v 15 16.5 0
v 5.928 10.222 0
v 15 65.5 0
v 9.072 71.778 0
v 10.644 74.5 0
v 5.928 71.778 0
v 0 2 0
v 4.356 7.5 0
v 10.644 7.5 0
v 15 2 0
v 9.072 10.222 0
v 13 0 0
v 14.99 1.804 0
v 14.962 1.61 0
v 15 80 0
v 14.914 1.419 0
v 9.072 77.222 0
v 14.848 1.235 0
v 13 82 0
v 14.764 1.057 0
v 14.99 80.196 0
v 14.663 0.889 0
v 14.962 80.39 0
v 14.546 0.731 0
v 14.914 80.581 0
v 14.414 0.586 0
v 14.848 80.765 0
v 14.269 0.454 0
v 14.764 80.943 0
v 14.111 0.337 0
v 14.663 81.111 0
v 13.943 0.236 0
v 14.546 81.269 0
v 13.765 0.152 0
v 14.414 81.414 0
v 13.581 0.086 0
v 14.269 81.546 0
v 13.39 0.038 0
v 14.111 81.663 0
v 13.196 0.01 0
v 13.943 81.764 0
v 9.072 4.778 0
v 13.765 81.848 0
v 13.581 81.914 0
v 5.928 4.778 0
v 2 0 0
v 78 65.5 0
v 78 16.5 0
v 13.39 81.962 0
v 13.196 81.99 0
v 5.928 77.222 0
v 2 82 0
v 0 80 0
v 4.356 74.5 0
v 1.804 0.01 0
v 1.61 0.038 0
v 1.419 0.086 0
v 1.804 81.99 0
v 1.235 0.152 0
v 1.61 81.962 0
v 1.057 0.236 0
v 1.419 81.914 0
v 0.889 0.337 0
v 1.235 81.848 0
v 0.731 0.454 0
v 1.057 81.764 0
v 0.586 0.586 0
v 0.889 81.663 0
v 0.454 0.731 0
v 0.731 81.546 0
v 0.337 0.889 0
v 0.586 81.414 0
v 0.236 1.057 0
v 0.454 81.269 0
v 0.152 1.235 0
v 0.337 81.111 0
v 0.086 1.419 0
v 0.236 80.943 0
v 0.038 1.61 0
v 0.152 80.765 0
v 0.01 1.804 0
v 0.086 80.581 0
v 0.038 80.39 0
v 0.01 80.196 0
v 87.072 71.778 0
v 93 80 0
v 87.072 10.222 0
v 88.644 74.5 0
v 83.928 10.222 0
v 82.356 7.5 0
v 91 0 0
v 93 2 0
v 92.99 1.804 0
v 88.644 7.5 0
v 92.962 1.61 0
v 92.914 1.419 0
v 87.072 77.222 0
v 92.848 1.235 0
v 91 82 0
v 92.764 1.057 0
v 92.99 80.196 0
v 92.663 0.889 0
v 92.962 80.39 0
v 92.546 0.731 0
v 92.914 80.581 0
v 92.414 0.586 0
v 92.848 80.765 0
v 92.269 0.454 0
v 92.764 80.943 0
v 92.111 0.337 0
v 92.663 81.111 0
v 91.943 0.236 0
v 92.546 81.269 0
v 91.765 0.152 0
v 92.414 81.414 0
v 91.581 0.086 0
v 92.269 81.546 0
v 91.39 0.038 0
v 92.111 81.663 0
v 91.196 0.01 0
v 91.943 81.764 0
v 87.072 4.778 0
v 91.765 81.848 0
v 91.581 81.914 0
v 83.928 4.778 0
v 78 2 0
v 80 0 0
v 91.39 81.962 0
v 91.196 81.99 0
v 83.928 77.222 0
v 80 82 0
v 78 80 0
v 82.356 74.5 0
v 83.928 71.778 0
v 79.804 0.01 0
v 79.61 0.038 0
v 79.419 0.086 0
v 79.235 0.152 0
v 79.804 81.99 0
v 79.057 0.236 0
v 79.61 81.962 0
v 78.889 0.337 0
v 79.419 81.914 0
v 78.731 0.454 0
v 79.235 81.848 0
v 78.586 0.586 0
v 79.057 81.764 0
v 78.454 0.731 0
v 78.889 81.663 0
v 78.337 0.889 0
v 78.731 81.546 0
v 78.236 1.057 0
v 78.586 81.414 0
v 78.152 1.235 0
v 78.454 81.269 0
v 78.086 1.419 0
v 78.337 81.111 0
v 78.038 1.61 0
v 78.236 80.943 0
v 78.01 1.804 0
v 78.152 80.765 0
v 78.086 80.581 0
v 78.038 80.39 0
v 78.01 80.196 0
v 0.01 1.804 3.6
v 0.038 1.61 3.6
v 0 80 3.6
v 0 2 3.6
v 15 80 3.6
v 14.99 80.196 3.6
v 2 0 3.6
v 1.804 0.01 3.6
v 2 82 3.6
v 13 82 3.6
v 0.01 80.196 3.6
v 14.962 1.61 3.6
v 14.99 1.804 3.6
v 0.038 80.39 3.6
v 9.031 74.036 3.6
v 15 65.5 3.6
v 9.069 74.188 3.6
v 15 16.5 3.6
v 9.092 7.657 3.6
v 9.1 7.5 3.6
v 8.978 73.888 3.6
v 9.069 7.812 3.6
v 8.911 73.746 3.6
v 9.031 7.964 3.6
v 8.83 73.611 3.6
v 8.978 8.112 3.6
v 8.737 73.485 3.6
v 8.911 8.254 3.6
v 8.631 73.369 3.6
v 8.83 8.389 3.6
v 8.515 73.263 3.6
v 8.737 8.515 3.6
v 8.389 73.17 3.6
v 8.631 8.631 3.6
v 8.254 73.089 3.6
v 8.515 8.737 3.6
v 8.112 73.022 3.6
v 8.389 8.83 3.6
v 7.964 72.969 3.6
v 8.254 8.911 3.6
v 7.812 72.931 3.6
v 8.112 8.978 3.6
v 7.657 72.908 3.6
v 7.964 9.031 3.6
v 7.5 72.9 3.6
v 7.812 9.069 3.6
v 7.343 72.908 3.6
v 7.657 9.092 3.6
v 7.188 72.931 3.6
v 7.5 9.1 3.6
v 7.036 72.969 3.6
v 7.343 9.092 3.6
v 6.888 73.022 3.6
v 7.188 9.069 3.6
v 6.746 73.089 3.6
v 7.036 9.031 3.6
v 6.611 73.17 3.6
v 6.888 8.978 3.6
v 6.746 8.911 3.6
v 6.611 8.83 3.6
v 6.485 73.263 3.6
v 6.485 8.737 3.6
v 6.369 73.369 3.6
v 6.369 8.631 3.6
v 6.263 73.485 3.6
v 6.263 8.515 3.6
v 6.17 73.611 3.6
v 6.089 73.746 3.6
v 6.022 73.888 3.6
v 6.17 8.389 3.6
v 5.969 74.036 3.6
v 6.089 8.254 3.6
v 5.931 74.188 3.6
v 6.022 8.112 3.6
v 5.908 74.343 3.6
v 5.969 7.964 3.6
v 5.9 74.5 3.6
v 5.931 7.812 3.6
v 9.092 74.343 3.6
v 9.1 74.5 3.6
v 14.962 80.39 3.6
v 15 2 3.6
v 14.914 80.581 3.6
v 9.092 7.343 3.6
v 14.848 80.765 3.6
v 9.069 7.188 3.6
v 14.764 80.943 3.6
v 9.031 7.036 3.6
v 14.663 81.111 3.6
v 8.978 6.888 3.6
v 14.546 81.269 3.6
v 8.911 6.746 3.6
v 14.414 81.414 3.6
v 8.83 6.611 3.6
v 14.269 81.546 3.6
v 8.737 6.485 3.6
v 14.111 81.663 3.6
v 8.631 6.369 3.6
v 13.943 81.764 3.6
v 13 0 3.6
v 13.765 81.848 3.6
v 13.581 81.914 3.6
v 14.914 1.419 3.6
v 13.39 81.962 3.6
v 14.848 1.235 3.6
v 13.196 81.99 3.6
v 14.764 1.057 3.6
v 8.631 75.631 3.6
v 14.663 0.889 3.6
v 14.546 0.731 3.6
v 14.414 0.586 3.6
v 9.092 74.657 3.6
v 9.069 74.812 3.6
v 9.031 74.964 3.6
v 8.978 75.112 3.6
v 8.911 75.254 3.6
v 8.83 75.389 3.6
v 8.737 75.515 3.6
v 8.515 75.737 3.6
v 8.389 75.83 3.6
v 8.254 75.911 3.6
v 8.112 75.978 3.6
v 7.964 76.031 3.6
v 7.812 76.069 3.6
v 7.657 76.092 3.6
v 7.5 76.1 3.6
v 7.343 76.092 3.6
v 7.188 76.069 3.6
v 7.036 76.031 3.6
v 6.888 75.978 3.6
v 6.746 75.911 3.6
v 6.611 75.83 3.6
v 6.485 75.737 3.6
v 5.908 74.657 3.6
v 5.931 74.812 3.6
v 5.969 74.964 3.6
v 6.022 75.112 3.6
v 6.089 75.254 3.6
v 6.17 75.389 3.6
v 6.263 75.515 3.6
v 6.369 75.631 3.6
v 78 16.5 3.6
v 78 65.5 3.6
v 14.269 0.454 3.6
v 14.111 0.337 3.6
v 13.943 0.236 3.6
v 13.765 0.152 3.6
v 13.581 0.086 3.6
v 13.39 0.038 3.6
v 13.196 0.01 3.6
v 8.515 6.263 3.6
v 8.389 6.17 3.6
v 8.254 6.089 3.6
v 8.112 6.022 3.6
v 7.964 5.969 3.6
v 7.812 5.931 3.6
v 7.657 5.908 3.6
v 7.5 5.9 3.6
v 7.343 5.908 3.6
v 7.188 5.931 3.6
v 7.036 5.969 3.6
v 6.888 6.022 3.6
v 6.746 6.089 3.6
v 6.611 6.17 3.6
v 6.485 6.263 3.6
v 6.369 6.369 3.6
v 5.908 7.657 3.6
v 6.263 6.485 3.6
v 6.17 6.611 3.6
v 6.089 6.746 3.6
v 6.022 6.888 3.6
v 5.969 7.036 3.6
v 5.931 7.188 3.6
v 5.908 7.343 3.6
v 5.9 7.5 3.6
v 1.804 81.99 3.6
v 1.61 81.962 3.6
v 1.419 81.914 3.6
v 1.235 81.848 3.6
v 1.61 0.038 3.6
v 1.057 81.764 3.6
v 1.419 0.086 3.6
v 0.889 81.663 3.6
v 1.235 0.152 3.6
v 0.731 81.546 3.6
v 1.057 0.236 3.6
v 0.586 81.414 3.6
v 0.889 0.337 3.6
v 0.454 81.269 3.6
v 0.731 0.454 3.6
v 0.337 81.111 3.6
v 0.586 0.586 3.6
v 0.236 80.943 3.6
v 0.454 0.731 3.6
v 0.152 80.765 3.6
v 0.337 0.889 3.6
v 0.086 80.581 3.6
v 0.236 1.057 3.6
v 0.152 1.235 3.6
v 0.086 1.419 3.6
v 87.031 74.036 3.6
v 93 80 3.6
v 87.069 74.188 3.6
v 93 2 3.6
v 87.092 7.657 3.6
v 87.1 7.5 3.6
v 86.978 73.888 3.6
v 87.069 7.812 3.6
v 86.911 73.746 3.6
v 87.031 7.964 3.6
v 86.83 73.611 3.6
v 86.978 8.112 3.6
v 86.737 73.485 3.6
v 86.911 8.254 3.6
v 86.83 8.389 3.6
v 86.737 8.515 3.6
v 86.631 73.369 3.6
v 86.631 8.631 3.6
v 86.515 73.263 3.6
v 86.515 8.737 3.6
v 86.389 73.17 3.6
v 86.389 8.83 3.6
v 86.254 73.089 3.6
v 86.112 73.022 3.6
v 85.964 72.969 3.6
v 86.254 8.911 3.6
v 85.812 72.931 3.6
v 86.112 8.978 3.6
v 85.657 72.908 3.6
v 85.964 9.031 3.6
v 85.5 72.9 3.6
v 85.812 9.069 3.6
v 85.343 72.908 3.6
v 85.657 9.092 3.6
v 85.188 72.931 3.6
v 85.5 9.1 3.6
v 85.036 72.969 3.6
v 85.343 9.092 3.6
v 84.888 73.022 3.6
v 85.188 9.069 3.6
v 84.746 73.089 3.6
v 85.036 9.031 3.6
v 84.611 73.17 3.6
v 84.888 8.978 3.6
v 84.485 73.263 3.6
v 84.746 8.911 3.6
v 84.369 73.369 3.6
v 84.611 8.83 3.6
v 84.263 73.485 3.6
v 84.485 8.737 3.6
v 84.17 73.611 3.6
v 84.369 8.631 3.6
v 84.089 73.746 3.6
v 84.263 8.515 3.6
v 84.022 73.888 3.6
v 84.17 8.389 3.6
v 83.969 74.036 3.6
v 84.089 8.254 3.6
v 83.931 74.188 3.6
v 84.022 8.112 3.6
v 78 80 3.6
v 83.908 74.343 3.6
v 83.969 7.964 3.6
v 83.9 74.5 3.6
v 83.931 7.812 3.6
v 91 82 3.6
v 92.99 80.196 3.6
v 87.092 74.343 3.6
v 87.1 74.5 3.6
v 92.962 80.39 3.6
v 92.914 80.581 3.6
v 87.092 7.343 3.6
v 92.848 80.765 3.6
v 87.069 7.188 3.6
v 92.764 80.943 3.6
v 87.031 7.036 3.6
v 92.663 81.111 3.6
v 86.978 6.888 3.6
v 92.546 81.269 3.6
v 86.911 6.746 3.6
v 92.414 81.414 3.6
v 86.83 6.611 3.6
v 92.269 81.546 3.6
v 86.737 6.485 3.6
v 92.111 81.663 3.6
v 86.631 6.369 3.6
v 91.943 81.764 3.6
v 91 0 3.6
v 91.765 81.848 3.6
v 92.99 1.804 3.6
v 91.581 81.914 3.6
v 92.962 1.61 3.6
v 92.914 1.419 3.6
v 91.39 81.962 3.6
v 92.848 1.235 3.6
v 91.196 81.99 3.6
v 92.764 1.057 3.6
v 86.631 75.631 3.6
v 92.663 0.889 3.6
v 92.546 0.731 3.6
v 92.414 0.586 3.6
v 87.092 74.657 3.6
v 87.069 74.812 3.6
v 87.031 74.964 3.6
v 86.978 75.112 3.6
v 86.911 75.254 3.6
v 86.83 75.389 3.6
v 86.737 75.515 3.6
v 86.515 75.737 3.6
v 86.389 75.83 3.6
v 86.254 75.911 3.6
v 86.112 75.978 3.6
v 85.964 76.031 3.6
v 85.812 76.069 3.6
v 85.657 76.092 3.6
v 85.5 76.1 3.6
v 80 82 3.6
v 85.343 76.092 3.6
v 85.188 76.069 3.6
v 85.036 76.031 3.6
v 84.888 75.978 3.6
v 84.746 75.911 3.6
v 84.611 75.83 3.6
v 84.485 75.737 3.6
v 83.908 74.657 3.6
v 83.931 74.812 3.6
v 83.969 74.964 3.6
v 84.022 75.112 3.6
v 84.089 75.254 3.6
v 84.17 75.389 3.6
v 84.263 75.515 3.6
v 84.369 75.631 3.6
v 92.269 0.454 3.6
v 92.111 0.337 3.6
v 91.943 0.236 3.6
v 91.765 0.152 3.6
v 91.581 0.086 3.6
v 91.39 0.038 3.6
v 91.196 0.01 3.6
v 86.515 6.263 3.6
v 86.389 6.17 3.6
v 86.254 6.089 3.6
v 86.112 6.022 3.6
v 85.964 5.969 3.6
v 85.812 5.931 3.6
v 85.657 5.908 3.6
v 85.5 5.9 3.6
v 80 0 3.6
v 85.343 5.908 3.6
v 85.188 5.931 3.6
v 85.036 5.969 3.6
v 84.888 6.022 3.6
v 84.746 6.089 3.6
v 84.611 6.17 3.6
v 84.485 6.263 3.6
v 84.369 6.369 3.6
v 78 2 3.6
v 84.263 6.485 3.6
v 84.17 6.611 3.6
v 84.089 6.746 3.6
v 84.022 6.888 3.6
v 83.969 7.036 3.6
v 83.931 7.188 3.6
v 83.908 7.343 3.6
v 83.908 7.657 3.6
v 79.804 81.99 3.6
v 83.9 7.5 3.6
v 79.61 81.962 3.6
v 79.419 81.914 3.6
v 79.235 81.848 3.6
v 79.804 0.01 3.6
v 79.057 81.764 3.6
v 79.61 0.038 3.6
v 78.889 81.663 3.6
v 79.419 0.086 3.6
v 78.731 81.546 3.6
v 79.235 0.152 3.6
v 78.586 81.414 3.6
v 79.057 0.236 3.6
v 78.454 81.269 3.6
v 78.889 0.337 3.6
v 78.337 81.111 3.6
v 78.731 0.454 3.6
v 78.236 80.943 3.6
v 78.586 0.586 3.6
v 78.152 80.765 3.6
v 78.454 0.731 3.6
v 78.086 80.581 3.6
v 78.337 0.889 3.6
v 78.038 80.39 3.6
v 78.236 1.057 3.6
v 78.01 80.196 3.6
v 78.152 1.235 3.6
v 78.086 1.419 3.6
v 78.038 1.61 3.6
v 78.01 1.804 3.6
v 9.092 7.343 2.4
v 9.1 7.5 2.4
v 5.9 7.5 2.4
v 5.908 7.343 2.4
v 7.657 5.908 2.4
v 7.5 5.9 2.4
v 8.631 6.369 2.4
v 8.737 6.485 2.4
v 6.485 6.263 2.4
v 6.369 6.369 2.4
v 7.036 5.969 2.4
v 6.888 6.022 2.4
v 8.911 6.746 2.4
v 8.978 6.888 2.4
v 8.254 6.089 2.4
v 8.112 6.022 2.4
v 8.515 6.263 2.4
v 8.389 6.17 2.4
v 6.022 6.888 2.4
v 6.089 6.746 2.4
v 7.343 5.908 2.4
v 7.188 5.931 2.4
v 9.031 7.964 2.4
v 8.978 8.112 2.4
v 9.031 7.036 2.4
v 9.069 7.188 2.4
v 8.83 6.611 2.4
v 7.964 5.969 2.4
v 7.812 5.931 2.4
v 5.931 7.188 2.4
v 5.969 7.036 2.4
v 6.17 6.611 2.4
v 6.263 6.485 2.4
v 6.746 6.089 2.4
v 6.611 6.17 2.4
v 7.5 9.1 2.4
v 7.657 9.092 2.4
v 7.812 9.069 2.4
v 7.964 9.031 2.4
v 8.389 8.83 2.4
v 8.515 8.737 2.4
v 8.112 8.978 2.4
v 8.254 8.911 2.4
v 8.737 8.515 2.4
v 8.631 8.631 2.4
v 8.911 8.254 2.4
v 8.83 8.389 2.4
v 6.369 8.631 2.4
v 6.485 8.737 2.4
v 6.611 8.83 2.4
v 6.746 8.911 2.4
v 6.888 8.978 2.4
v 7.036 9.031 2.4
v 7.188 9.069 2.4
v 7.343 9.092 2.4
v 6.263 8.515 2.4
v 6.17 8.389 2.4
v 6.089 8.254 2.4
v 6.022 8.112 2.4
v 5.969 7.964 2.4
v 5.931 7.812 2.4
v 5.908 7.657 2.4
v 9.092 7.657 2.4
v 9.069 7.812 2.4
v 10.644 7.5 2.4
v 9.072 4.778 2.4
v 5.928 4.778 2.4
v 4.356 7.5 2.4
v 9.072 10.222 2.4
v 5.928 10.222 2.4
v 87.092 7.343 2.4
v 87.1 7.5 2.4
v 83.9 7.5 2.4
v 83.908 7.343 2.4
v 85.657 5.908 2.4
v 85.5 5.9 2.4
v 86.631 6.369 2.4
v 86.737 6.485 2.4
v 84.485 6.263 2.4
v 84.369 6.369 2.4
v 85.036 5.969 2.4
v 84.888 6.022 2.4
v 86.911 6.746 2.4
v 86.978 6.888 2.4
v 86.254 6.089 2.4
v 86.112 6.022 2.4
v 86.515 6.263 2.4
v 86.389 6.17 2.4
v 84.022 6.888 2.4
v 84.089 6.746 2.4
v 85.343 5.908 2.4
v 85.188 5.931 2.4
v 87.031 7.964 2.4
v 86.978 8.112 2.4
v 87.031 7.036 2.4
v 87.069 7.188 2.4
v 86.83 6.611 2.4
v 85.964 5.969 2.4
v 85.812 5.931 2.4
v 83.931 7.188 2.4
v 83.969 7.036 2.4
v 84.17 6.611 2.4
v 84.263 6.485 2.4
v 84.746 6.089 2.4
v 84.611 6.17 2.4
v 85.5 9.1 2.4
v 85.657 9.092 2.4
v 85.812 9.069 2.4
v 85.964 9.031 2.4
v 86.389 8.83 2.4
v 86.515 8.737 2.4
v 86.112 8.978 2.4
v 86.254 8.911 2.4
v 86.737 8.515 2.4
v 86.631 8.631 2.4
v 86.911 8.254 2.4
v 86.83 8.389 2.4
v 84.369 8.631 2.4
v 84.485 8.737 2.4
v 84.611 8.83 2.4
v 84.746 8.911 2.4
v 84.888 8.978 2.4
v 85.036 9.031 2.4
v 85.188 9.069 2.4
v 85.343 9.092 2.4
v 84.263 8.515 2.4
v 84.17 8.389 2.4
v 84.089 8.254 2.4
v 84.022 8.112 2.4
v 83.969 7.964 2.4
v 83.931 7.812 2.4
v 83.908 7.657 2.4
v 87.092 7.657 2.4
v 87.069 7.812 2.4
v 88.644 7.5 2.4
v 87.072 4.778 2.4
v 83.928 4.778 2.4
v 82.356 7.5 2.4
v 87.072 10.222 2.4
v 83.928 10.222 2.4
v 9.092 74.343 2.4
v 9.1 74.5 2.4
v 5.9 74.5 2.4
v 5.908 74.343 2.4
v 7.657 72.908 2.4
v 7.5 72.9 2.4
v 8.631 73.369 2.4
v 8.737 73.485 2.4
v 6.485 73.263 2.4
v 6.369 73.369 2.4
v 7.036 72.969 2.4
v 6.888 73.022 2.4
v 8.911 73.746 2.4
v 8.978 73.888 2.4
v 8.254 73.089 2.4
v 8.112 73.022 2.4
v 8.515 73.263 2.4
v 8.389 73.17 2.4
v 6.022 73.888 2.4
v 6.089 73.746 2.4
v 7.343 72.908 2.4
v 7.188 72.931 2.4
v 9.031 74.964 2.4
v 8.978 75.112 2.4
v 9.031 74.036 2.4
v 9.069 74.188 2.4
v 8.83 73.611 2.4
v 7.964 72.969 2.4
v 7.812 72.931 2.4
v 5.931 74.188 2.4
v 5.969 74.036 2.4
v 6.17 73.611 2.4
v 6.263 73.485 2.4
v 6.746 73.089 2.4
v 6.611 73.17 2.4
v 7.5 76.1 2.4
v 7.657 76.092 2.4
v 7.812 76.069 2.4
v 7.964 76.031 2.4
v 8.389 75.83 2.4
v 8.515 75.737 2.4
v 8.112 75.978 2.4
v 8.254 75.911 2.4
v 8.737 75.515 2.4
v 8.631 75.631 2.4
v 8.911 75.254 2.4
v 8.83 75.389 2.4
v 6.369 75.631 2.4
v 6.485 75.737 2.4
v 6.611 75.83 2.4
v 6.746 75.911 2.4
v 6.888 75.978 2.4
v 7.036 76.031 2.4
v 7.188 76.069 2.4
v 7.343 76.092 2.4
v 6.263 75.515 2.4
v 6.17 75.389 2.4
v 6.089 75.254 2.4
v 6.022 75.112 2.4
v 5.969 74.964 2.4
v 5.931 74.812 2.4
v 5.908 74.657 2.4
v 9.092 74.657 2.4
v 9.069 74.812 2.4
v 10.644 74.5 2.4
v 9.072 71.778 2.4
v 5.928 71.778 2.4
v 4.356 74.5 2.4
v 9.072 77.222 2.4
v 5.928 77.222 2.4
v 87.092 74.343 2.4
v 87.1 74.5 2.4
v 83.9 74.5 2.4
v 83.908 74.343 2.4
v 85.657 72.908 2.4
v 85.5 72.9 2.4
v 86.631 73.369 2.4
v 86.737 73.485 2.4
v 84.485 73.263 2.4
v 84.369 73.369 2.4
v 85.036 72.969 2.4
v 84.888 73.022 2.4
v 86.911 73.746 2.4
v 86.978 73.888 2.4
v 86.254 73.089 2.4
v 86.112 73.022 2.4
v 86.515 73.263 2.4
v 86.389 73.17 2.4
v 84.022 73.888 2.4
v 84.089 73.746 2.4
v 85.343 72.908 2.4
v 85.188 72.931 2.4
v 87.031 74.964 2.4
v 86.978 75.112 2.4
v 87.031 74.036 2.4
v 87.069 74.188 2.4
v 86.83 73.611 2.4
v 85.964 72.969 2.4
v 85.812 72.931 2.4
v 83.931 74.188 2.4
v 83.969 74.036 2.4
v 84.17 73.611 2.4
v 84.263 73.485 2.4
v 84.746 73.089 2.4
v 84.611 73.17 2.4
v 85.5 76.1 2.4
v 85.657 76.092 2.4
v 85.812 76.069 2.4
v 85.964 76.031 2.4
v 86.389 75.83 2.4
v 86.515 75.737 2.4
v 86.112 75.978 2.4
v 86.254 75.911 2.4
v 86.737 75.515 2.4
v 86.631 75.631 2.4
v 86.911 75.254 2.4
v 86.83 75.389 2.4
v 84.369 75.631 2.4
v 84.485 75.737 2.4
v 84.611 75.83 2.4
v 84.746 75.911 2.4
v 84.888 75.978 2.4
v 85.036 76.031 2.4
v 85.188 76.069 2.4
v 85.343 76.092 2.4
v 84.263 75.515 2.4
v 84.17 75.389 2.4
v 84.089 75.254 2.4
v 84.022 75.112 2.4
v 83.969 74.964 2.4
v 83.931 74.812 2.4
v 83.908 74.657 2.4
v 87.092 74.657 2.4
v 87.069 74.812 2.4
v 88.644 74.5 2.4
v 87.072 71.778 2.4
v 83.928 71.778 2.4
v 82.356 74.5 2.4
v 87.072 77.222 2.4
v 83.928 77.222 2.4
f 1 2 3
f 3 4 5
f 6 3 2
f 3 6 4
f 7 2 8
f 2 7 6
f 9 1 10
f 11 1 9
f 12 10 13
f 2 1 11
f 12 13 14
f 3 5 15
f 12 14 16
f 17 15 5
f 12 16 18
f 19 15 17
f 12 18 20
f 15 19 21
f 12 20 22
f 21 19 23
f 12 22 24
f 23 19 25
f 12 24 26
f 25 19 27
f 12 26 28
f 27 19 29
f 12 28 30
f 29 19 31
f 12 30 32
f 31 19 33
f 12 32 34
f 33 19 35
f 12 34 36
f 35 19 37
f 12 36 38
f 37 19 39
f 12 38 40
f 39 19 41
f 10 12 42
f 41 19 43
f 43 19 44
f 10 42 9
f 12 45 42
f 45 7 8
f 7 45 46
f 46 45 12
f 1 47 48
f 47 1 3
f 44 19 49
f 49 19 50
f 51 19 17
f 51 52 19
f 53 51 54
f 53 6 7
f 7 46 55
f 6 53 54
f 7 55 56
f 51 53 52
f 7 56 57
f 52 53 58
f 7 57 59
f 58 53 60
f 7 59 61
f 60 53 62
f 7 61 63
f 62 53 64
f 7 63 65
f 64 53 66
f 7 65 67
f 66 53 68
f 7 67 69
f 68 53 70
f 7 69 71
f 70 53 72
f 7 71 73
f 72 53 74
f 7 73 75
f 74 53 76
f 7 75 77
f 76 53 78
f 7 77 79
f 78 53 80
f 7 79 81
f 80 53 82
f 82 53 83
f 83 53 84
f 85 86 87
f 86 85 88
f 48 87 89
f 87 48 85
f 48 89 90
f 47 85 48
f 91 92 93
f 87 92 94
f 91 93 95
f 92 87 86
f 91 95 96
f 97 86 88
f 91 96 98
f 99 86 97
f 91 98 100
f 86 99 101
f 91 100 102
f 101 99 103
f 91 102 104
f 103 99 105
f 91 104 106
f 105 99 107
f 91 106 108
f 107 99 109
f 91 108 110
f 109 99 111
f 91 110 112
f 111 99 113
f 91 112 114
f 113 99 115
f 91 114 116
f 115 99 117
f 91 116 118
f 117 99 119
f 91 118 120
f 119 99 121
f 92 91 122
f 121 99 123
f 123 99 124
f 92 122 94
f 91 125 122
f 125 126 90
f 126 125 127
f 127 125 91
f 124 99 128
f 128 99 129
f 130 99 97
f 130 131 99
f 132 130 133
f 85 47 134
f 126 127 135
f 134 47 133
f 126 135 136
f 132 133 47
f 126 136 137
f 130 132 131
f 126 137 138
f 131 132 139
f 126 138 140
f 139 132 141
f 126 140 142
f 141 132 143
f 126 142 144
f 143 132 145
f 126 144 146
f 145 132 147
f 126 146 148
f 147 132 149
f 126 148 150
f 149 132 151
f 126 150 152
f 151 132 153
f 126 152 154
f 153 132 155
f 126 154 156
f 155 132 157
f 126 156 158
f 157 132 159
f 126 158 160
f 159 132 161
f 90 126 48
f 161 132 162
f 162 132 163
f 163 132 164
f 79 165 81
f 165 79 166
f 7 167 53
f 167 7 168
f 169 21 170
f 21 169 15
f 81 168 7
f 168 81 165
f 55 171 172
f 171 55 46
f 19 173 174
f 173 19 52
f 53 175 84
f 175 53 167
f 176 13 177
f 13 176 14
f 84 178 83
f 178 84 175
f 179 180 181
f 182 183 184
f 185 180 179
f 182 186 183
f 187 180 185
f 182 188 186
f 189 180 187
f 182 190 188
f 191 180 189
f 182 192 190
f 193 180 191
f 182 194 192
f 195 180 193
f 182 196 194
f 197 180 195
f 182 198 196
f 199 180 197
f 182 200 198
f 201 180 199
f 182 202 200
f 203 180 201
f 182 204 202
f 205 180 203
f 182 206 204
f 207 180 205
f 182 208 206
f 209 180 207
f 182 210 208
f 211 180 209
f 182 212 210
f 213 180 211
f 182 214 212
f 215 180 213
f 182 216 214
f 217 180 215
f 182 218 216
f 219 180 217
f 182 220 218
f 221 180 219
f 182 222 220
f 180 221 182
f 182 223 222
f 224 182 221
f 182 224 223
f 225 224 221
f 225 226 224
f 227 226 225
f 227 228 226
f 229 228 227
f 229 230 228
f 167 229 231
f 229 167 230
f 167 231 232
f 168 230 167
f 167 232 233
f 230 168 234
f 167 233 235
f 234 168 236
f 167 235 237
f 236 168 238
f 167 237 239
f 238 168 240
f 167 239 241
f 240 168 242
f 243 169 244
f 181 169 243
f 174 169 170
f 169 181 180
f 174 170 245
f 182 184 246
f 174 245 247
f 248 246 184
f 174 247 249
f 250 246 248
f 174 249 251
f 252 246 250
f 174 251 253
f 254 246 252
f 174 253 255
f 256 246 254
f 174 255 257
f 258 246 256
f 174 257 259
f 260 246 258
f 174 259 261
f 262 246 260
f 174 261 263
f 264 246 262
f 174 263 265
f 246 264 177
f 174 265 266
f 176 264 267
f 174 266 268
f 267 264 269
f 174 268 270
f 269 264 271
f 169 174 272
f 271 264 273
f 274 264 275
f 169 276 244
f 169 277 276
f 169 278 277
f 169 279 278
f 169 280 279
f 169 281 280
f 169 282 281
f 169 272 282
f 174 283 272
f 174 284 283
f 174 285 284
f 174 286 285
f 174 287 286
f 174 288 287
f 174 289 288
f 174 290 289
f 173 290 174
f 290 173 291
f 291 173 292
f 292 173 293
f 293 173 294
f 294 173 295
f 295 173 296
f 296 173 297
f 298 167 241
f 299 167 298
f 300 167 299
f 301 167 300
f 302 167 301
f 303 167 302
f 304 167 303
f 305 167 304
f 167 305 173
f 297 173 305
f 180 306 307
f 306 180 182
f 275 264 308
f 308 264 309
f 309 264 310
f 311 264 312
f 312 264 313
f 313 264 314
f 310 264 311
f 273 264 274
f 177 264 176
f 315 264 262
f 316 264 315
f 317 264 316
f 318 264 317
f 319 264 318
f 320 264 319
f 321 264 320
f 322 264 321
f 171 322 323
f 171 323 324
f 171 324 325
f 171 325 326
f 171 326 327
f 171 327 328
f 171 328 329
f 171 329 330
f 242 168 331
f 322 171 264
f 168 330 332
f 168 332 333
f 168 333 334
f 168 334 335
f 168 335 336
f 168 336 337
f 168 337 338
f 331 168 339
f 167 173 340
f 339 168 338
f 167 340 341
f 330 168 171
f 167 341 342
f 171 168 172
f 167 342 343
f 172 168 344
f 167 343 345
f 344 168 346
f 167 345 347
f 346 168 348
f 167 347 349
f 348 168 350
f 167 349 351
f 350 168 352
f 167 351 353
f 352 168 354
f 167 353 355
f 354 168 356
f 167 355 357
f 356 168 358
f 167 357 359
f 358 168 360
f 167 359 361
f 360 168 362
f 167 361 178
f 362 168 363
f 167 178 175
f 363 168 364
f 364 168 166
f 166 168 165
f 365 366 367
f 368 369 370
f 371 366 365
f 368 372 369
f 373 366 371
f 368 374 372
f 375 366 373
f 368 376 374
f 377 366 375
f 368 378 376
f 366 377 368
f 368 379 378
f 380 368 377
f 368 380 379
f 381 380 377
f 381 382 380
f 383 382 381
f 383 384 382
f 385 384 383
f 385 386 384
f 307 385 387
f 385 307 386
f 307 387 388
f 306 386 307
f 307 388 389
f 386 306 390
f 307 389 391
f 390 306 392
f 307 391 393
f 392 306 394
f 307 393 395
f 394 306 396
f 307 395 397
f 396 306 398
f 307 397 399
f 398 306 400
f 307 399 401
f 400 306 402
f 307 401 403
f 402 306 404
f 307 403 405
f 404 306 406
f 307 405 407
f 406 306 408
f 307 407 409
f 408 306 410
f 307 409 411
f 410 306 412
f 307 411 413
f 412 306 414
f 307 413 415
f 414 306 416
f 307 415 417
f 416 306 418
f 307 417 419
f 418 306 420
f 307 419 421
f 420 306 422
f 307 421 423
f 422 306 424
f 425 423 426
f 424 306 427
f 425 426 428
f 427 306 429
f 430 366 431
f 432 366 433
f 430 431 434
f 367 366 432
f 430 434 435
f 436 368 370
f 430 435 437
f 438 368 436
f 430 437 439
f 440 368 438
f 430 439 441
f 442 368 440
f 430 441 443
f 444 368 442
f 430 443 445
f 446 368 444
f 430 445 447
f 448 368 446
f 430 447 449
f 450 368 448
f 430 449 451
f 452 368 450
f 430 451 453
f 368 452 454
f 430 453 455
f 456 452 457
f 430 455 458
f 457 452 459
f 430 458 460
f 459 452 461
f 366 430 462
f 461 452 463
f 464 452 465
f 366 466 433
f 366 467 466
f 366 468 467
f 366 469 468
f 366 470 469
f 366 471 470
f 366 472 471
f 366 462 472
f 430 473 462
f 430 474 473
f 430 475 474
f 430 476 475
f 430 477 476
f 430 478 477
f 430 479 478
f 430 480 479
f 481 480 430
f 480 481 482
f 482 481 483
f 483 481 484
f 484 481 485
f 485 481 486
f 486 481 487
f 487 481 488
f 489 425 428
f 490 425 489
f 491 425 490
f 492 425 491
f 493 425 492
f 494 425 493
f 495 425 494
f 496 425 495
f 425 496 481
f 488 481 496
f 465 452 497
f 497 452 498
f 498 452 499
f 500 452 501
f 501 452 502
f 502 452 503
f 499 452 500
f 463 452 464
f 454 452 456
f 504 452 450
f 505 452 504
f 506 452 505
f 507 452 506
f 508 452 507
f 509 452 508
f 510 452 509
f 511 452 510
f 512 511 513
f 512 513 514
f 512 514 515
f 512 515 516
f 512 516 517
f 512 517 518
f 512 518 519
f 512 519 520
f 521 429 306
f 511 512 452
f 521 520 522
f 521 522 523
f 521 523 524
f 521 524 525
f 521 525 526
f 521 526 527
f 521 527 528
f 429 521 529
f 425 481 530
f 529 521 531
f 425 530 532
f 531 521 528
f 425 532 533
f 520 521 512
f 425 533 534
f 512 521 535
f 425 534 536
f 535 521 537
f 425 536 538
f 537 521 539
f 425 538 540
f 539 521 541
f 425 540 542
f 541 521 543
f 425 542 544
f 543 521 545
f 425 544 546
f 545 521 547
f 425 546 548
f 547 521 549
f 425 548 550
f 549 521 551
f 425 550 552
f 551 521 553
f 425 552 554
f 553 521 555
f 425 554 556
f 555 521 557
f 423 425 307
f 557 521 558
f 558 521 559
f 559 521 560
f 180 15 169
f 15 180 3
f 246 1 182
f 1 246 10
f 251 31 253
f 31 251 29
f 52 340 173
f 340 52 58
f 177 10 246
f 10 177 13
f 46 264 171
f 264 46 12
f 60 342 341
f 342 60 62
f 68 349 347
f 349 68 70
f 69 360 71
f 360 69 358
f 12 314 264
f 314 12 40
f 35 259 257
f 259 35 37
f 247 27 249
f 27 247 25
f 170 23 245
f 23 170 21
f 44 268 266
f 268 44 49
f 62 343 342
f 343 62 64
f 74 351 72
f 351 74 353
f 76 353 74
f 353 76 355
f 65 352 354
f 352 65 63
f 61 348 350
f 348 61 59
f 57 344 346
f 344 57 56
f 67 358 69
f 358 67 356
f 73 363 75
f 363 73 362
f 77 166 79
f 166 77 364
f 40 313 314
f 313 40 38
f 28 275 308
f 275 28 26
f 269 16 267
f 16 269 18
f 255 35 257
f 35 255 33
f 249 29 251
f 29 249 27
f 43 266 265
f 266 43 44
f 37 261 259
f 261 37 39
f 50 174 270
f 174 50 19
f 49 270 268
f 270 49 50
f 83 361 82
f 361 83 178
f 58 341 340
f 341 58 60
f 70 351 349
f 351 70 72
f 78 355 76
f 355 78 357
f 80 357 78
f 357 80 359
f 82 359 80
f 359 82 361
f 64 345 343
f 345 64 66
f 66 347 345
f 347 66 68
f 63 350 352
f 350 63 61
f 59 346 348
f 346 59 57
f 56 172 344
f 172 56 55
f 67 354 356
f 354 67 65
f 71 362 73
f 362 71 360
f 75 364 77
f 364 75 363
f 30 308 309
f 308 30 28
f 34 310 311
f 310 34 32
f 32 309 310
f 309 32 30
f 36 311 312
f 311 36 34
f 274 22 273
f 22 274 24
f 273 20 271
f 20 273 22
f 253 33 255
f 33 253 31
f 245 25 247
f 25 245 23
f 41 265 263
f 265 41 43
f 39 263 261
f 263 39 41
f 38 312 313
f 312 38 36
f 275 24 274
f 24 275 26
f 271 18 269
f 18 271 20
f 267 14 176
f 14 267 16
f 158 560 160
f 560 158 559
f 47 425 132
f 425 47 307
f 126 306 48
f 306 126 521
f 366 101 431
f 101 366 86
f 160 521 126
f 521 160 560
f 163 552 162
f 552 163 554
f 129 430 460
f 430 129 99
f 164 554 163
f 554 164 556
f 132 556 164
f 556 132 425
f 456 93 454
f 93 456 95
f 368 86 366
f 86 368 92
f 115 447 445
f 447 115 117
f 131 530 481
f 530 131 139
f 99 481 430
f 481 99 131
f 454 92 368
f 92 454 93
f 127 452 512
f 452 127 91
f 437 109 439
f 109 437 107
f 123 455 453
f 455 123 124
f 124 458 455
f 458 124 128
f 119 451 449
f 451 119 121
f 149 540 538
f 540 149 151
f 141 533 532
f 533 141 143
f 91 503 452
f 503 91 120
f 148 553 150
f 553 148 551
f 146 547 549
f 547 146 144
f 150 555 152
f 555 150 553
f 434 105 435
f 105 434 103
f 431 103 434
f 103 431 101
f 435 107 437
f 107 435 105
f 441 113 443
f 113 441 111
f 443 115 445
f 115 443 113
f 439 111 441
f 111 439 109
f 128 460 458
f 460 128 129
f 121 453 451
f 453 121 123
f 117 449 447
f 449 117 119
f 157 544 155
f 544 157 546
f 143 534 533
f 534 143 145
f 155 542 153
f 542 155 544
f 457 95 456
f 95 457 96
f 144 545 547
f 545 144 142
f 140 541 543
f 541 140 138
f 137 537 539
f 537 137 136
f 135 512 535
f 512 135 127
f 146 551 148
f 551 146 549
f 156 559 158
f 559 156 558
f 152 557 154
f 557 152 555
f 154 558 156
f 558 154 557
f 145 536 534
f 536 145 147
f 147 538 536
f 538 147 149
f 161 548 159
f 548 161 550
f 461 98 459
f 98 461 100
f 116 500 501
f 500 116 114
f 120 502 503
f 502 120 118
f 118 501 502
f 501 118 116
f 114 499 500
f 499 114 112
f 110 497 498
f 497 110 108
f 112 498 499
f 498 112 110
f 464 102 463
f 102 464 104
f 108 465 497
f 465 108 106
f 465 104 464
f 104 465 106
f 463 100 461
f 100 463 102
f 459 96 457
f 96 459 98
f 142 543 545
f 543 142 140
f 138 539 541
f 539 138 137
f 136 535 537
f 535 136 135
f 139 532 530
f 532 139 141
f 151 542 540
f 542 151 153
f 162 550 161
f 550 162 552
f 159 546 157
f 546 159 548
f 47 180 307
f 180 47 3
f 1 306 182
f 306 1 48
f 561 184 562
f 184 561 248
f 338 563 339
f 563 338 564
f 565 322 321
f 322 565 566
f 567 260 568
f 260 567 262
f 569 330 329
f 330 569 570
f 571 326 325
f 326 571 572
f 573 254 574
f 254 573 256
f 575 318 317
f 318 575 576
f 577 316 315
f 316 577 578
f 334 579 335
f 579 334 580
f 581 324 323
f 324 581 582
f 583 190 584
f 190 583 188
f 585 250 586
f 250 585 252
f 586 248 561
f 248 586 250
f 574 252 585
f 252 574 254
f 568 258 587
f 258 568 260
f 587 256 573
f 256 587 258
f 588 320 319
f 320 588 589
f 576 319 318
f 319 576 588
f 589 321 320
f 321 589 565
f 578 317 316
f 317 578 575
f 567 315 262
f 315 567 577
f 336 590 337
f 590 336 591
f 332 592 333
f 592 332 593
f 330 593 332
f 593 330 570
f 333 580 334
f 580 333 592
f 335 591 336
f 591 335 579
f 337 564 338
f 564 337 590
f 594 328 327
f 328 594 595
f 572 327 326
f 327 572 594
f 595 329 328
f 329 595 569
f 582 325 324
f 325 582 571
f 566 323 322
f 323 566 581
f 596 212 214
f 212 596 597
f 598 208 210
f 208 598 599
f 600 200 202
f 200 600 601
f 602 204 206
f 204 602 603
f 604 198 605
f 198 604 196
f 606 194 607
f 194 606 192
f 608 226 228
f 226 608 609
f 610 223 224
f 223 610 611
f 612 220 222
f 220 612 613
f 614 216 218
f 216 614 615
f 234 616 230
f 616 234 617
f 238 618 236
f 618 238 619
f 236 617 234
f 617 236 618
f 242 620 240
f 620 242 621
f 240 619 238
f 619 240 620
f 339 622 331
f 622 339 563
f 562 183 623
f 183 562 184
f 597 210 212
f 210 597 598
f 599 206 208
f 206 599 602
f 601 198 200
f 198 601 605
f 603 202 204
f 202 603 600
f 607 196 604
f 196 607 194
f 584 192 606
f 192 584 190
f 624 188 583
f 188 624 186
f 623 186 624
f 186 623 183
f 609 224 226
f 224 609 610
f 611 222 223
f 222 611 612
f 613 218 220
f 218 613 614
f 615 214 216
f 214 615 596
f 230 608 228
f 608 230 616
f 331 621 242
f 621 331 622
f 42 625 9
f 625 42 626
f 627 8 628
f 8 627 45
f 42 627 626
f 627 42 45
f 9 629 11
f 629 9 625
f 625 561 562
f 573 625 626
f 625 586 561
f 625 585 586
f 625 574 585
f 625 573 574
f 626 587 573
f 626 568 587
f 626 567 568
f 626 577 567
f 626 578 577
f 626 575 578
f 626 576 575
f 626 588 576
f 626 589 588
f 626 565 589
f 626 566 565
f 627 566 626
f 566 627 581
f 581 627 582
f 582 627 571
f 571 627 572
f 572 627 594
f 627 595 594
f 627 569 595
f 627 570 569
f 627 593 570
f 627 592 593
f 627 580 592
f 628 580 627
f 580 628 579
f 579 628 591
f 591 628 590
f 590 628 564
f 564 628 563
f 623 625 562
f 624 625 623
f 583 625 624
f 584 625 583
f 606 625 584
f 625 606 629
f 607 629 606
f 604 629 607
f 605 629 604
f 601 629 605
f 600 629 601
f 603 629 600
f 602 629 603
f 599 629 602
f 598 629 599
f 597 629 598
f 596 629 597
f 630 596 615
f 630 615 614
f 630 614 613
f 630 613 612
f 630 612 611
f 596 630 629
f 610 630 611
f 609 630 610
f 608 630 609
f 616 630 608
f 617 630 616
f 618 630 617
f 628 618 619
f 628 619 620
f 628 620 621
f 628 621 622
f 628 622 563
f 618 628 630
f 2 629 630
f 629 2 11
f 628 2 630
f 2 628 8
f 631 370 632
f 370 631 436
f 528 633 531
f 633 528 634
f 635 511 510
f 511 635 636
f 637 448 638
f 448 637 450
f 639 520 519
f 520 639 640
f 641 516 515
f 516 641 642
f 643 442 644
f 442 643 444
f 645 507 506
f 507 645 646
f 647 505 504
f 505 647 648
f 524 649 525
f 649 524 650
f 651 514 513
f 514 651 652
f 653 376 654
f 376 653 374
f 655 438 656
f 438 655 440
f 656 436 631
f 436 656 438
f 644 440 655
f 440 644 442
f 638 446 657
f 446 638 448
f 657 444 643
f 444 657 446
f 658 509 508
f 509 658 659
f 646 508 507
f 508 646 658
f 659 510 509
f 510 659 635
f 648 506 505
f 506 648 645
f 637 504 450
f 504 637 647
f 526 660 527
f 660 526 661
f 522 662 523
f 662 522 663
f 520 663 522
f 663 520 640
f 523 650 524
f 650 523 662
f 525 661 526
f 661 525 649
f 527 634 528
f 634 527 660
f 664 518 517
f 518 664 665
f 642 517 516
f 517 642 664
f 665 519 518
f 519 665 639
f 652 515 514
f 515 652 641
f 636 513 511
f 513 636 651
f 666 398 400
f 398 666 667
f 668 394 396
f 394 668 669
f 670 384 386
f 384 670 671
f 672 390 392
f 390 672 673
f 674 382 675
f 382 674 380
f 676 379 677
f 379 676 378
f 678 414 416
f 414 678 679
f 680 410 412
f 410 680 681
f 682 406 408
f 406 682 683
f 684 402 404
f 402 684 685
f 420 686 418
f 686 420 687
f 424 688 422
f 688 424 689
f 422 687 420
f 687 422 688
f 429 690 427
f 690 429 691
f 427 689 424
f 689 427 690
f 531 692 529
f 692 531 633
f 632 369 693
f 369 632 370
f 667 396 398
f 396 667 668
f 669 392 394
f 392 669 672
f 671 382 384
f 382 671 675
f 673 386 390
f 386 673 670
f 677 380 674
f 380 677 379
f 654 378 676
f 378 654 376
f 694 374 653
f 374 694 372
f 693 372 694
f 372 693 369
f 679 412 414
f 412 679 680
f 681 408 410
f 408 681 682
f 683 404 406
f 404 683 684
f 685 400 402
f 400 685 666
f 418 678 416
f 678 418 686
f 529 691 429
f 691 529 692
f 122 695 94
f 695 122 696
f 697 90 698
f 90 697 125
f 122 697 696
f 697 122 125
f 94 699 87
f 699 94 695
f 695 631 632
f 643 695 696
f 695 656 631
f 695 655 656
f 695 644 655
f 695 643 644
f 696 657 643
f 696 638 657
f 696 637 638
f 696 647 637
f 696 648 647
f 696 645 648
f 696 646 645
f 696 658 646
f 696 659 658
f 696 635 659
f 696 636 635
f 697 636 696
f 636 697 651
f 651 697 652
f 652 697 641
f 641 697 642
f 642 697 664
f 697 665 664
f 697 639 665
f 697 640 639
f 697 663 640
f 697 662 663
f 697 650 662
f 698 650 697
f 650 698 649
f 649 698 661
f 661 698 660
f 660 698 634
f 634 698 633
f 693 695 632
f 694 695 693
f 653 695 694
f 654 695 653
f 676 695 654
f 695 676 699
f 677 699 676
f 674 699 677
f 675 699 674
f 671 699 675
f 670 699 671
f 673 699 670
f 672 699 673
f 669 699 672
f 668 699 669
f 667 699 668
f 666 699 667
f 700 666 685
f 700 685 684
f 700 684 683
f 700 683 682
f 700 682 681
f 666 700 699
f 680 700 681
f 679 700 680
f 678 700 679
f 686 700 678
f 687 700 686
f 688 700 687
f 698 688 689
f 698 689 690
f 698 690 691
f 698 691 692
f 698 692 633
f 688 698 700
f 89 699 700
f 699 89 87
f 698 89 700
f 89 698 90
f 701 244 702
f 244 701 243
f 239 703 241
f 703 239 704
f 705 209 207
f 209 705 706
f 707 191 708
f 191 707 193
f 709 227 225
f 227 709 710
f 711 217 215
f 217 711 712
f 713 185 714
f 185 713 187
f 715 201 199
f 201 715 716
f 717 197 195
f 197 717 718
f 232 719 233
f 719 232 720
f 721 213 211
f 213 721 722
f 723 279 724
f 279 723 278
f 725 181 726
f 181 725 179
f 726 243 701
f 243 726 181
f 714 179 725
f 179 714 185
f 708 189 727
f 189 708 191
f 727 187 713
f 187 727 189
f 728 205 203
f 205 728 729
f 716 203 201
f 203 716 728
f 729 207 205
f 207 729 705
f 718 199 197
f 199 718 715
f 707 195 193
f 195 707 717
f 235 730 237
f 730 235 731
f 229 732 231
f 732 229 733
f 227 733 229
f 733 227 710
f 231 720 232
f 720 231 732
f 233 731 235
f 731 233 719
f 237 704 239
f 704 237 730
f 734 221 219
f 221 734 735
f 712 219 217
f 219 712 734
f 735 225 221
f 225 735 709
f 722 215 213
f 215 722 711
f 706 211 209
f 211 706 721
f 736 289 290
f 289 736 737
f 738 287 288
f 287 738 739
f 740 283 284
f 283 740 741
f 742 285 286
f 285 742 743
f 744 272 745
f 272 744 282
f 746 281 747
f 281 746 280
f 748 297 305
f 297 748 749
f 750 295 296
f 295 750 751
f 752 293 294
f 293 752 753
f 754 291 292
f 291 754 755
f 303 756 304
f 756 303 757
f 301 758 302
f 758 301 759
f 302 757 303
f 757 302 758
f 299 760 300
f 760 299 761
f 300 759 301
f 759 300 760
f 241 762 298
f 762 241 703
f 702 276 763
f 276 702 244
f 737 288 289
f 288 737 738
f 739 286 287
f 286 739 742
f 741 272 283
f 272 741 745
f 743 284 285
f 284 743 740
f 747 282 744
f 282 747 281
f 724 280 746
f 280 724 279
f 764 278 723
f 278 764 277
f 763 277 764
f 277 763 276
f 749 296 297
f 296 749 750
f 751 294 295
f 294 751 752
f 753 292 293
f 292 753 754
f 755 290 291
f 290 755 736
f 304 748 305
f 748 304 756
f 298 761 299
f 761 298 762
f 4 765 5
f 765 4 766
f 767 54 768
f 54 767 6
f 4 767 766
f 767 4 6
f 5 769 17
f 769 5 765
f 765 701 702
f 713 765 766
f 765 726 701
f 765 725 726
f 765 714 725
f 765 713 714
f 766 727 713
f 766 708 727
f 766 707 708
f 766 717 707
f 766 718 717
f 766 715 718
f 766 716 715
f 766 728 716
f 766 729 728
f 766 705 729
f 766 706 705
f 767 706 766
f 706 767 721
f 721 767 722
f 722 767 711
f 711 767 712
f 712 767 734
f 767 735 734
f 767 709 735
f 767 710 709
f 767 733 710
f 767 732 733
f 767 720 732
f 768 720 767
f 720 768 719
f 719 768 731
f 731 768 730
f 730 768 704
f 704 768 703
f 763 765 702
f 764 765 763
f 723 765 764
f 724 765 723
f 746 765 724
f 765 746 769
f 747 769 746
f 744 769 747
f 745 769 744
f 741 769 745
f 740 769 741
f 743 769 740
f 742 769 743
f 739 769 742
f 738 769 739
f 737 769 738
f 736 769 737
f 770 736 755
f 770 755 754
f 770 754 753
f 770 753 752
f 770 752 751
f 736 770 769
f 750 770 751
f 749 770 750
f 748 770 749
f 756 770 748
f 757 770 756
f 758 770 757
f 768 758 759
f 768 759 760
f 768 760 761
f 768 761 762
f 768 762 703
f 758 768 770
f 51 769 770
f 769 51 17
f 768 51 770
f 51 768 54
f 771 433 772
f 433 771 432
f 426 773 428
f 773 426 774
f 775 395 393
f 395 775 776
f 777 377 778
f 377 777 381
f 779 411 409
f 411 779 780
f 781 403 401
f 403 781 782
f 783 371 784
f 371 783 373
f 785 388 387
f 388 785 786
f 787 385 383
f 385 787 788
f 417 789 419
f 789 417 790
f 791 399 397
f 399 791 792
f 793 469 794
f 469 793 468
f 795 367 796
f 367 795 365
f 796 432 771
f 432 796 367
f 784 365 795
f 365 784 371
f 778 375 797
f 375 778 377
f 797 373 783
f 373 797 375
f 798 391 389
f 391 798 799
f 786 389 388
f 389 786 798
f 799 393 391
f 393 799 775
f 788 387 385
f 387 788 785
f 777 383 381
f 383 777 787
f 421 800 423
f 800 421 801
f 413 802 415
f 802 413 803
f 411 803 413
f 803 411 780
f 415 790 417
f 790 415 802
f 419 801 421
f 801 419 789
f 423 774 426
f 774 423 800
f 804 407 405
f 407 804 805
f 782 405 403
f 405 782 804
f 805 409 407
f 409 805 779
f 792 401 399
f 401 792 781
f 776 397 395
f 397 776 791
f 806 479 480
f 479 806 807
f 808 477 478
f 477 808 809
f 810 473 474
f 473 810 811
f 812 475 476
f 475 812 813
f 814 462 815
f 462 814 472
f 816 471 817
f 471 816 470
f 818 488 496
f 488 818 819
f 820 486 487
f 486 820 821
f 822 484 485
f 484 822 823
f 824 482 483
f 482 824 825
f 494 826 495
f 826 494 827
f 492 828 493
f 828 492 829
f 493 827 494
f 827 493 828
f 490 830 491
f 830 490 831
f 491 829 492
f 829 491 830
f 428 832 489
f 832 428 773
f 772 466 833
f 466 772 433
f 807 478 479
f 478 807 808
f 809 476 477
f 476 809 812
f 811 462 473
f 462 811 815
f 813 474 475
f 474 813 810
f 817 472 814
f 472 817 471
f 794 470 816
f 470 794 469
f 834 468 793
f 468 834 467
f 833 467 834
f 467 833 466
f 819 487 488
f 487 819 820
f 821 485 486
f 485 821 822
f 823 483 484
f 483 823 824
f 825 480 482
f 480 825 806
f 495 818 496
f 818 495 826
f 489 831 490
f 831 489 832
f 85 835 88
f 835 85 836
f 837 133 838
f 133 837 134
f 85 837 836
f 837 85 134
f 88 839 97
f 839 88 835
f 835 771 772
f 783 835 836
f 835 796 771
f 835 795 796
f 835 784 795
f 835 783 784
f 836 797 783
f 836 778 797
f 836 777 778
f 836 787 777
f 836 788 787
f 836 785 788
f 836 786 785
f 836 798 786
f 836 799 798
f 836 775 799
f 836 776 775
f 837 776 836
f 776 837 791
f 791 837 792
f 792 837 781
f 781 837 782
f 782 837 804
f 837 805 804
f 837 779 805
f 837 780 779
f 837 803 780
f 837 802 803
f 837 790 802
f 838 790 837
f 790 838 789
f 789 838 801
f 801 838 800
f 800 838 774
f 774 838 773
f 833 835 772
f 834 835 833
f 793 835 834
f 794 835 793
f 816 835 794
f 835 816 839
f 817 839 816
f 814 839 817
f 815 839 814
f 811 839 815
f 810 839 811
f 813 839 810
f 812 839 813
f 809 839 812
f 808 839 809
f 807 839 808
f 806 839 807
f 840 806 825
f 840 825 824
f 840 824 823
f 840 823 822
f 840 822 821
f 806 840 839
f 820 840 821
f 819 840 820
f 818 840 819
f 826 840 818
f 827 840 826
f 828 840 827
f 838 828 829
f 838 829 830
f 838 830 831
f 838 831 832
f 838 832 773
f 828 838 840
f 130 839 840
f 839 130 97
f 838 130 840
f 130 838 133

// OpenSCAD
// file: ../../Various/SCAD/screw_holes.scad
/**
 * Generates a hole for screws, including screw shaft and head or shaft and nut.
 * This module can be parameterized to produce the necessary bodies.
 */
module screw_trap(hole = 3, top = 6, bottomHeight = 5, topHeight = 5, forNut = false) {
    translate([0, 0, -0.01]) cylinder(d = hole + 0.2, h = bottomHeight + 0.02);
    if (forNut) {
        upscaleRatio = 1/cos(180/6);
        translate([0, 0, bottomHeight]) cylinder(r = (top*0.99)/2 * upscaleRatio, h = topHeight, $fn=6);
    }
    else {
        translate([0, 0, bottomHeight]) cylinder(d = top + 0.2, h = topHeight);
    }
}

module nut_trap(hole_diameter = 3, size_head = 6, height_shaft = 5, height_trap = 5) {
    screw_trap(hole_diameter, size_head, height_shaft, height_trap, true);
}
// file: ../../Various/SCAD/rounded_box.scad
/**
 * Small "library" for creating boxes with rounded edges.
 *
 * Hendrik Busch, 2017-18 (https://github.com/hmbusch)
 *
 */
 
/**
 * Creates a 2D-shape of a box with the given dimensions and rounded edges. 
 * Be sure to increase $fn for nicer edges.
 *
 * @param width
 *          the desired width of the box (default is 10mm)
 * @param depth
 *          the desired depth of the box (default is 10mm)
 * @param height
 *          the desired height of the box (default is 10mm)
 * @param edge_radius
 *          the radius of all the edges on the xy-plane (default is 2mm)
 */  
module box_with_round_edges_2d(width = 10, depth = 10, edge_radius = 2) {
    ed = edge_radius * 2;
    translate([edge_radius, edge_radius, 0]) hull() {
        circle(d = ed);
        translate([width - ed, 0, 0]) circle(d = ed);
        translate([0, depth - ed, 0]) circle(d = ed);
        translate([width - ed, depth - ed, 0]) circle(d = ed);    
    }
}
 
/**
 * Call to create a box with rounded edges (edges will be round on one plane only).
 * Be sure to increase $fn for nicer edges.
 * 
 * @param width
 *          the desired width of the box (default is 10mm)
 * @param depth
 *          the desired depth of the box (default is 10mm)
 * @param height
 *          the desired height of the box (default is 10mm)
 * @param edge_radius
 *          the radius of all the edges on the xy-plane (default is 2mm)
 *
 */
module box_with_round_edges_3d(width = 10, depth = 10, height = 10, edge_radius = 2) {
	linear_extrude(height = height) {
		box_with_round_edges_2d(width, depth, edge_radius);
	}
}

/**
 * Call to create a box with rounded edges (edges will be round on one plane only).
 * Be sure to increase $fn for nicer edges. This module has inputs that resemble
 * those of cube() so that it can act as a drop-in replacement.
 * 
 * @param dimensions
 *          3-value-array with x, y and z dimensions (default is 10x10x10mm).
 * @param edge_radius
 *          the radius of all the edges on the xy-plane (default is 2mm)
 *
 */
module box_with_round_edges_3d(dimensions = [10, 10, 10], edge_radius = 2) {
	linear_extrude(height = dimensions[2]) {
		box_with_round_edges_2d(dimensions[0], dimensions[1], edge_radius);
	}
}
// main file
use <../../Various/SCAD/rounded_box.scad>
use <../../Various/SCAD/screw_holes.scad>

// Plate for mounting a GLEDOPTO GL-C-008 RGB+CCT controller using
// two brackets from http://www.thingiverse.com/thing:3498167

$fn = 64;

outer_x = 93;
outer_y = 82;
outer_z = 3.6;

inner_y = 49;

beam_x = 15;

nut_height = 2.4;
nut_size = 5.5;

difference() {
    union() {
        box_with_round_edges_3d(dimensions = [beam_x, outer_y, outer_z]);
        translate([outer_x - beam_x, 0, 0]) 
            box_with_round_edges_3d(dimensions = [beam_x, outer_y, outer_z]);
        translate([0, (outer_y - inner_y) / 2, 0]) 
            box_with_round_edges_3d(dimensions = [outer_x, inner_y, outer_z]);
    }
    translate([beam_x/2, beam_x/2, outer_z + nut_height])
        rotate([180, 0, 0])
            nut_trap(height_shaft = outer_z, height_trap = nut_height, size_head = nut_size);
    translate([outer_x - beam_x/2, beam_x/2, outer_z + nut_height])
        rotate([180, 0, 0])
            nut_trap(height_shaft = outer_z, height_trap = nut_height, size_head = nut_size);
    translate([beam_x/2, outer_y - beam_x/2, outer_z + nut_height])
        rotate([180, 0, 0])
            nut_trap(height_shaft = outer_z, height_trap = nut_height, size_head = nut_size);
    translate([outer_x - beam_x/2, outer_y - beam_x/2, outer_z + nut_height])
        rotate([180, 0, 0])
            nut_trap(height_shaft = outer_z, height_trap = nut_height, size_head = nut_size);
    
    
}
